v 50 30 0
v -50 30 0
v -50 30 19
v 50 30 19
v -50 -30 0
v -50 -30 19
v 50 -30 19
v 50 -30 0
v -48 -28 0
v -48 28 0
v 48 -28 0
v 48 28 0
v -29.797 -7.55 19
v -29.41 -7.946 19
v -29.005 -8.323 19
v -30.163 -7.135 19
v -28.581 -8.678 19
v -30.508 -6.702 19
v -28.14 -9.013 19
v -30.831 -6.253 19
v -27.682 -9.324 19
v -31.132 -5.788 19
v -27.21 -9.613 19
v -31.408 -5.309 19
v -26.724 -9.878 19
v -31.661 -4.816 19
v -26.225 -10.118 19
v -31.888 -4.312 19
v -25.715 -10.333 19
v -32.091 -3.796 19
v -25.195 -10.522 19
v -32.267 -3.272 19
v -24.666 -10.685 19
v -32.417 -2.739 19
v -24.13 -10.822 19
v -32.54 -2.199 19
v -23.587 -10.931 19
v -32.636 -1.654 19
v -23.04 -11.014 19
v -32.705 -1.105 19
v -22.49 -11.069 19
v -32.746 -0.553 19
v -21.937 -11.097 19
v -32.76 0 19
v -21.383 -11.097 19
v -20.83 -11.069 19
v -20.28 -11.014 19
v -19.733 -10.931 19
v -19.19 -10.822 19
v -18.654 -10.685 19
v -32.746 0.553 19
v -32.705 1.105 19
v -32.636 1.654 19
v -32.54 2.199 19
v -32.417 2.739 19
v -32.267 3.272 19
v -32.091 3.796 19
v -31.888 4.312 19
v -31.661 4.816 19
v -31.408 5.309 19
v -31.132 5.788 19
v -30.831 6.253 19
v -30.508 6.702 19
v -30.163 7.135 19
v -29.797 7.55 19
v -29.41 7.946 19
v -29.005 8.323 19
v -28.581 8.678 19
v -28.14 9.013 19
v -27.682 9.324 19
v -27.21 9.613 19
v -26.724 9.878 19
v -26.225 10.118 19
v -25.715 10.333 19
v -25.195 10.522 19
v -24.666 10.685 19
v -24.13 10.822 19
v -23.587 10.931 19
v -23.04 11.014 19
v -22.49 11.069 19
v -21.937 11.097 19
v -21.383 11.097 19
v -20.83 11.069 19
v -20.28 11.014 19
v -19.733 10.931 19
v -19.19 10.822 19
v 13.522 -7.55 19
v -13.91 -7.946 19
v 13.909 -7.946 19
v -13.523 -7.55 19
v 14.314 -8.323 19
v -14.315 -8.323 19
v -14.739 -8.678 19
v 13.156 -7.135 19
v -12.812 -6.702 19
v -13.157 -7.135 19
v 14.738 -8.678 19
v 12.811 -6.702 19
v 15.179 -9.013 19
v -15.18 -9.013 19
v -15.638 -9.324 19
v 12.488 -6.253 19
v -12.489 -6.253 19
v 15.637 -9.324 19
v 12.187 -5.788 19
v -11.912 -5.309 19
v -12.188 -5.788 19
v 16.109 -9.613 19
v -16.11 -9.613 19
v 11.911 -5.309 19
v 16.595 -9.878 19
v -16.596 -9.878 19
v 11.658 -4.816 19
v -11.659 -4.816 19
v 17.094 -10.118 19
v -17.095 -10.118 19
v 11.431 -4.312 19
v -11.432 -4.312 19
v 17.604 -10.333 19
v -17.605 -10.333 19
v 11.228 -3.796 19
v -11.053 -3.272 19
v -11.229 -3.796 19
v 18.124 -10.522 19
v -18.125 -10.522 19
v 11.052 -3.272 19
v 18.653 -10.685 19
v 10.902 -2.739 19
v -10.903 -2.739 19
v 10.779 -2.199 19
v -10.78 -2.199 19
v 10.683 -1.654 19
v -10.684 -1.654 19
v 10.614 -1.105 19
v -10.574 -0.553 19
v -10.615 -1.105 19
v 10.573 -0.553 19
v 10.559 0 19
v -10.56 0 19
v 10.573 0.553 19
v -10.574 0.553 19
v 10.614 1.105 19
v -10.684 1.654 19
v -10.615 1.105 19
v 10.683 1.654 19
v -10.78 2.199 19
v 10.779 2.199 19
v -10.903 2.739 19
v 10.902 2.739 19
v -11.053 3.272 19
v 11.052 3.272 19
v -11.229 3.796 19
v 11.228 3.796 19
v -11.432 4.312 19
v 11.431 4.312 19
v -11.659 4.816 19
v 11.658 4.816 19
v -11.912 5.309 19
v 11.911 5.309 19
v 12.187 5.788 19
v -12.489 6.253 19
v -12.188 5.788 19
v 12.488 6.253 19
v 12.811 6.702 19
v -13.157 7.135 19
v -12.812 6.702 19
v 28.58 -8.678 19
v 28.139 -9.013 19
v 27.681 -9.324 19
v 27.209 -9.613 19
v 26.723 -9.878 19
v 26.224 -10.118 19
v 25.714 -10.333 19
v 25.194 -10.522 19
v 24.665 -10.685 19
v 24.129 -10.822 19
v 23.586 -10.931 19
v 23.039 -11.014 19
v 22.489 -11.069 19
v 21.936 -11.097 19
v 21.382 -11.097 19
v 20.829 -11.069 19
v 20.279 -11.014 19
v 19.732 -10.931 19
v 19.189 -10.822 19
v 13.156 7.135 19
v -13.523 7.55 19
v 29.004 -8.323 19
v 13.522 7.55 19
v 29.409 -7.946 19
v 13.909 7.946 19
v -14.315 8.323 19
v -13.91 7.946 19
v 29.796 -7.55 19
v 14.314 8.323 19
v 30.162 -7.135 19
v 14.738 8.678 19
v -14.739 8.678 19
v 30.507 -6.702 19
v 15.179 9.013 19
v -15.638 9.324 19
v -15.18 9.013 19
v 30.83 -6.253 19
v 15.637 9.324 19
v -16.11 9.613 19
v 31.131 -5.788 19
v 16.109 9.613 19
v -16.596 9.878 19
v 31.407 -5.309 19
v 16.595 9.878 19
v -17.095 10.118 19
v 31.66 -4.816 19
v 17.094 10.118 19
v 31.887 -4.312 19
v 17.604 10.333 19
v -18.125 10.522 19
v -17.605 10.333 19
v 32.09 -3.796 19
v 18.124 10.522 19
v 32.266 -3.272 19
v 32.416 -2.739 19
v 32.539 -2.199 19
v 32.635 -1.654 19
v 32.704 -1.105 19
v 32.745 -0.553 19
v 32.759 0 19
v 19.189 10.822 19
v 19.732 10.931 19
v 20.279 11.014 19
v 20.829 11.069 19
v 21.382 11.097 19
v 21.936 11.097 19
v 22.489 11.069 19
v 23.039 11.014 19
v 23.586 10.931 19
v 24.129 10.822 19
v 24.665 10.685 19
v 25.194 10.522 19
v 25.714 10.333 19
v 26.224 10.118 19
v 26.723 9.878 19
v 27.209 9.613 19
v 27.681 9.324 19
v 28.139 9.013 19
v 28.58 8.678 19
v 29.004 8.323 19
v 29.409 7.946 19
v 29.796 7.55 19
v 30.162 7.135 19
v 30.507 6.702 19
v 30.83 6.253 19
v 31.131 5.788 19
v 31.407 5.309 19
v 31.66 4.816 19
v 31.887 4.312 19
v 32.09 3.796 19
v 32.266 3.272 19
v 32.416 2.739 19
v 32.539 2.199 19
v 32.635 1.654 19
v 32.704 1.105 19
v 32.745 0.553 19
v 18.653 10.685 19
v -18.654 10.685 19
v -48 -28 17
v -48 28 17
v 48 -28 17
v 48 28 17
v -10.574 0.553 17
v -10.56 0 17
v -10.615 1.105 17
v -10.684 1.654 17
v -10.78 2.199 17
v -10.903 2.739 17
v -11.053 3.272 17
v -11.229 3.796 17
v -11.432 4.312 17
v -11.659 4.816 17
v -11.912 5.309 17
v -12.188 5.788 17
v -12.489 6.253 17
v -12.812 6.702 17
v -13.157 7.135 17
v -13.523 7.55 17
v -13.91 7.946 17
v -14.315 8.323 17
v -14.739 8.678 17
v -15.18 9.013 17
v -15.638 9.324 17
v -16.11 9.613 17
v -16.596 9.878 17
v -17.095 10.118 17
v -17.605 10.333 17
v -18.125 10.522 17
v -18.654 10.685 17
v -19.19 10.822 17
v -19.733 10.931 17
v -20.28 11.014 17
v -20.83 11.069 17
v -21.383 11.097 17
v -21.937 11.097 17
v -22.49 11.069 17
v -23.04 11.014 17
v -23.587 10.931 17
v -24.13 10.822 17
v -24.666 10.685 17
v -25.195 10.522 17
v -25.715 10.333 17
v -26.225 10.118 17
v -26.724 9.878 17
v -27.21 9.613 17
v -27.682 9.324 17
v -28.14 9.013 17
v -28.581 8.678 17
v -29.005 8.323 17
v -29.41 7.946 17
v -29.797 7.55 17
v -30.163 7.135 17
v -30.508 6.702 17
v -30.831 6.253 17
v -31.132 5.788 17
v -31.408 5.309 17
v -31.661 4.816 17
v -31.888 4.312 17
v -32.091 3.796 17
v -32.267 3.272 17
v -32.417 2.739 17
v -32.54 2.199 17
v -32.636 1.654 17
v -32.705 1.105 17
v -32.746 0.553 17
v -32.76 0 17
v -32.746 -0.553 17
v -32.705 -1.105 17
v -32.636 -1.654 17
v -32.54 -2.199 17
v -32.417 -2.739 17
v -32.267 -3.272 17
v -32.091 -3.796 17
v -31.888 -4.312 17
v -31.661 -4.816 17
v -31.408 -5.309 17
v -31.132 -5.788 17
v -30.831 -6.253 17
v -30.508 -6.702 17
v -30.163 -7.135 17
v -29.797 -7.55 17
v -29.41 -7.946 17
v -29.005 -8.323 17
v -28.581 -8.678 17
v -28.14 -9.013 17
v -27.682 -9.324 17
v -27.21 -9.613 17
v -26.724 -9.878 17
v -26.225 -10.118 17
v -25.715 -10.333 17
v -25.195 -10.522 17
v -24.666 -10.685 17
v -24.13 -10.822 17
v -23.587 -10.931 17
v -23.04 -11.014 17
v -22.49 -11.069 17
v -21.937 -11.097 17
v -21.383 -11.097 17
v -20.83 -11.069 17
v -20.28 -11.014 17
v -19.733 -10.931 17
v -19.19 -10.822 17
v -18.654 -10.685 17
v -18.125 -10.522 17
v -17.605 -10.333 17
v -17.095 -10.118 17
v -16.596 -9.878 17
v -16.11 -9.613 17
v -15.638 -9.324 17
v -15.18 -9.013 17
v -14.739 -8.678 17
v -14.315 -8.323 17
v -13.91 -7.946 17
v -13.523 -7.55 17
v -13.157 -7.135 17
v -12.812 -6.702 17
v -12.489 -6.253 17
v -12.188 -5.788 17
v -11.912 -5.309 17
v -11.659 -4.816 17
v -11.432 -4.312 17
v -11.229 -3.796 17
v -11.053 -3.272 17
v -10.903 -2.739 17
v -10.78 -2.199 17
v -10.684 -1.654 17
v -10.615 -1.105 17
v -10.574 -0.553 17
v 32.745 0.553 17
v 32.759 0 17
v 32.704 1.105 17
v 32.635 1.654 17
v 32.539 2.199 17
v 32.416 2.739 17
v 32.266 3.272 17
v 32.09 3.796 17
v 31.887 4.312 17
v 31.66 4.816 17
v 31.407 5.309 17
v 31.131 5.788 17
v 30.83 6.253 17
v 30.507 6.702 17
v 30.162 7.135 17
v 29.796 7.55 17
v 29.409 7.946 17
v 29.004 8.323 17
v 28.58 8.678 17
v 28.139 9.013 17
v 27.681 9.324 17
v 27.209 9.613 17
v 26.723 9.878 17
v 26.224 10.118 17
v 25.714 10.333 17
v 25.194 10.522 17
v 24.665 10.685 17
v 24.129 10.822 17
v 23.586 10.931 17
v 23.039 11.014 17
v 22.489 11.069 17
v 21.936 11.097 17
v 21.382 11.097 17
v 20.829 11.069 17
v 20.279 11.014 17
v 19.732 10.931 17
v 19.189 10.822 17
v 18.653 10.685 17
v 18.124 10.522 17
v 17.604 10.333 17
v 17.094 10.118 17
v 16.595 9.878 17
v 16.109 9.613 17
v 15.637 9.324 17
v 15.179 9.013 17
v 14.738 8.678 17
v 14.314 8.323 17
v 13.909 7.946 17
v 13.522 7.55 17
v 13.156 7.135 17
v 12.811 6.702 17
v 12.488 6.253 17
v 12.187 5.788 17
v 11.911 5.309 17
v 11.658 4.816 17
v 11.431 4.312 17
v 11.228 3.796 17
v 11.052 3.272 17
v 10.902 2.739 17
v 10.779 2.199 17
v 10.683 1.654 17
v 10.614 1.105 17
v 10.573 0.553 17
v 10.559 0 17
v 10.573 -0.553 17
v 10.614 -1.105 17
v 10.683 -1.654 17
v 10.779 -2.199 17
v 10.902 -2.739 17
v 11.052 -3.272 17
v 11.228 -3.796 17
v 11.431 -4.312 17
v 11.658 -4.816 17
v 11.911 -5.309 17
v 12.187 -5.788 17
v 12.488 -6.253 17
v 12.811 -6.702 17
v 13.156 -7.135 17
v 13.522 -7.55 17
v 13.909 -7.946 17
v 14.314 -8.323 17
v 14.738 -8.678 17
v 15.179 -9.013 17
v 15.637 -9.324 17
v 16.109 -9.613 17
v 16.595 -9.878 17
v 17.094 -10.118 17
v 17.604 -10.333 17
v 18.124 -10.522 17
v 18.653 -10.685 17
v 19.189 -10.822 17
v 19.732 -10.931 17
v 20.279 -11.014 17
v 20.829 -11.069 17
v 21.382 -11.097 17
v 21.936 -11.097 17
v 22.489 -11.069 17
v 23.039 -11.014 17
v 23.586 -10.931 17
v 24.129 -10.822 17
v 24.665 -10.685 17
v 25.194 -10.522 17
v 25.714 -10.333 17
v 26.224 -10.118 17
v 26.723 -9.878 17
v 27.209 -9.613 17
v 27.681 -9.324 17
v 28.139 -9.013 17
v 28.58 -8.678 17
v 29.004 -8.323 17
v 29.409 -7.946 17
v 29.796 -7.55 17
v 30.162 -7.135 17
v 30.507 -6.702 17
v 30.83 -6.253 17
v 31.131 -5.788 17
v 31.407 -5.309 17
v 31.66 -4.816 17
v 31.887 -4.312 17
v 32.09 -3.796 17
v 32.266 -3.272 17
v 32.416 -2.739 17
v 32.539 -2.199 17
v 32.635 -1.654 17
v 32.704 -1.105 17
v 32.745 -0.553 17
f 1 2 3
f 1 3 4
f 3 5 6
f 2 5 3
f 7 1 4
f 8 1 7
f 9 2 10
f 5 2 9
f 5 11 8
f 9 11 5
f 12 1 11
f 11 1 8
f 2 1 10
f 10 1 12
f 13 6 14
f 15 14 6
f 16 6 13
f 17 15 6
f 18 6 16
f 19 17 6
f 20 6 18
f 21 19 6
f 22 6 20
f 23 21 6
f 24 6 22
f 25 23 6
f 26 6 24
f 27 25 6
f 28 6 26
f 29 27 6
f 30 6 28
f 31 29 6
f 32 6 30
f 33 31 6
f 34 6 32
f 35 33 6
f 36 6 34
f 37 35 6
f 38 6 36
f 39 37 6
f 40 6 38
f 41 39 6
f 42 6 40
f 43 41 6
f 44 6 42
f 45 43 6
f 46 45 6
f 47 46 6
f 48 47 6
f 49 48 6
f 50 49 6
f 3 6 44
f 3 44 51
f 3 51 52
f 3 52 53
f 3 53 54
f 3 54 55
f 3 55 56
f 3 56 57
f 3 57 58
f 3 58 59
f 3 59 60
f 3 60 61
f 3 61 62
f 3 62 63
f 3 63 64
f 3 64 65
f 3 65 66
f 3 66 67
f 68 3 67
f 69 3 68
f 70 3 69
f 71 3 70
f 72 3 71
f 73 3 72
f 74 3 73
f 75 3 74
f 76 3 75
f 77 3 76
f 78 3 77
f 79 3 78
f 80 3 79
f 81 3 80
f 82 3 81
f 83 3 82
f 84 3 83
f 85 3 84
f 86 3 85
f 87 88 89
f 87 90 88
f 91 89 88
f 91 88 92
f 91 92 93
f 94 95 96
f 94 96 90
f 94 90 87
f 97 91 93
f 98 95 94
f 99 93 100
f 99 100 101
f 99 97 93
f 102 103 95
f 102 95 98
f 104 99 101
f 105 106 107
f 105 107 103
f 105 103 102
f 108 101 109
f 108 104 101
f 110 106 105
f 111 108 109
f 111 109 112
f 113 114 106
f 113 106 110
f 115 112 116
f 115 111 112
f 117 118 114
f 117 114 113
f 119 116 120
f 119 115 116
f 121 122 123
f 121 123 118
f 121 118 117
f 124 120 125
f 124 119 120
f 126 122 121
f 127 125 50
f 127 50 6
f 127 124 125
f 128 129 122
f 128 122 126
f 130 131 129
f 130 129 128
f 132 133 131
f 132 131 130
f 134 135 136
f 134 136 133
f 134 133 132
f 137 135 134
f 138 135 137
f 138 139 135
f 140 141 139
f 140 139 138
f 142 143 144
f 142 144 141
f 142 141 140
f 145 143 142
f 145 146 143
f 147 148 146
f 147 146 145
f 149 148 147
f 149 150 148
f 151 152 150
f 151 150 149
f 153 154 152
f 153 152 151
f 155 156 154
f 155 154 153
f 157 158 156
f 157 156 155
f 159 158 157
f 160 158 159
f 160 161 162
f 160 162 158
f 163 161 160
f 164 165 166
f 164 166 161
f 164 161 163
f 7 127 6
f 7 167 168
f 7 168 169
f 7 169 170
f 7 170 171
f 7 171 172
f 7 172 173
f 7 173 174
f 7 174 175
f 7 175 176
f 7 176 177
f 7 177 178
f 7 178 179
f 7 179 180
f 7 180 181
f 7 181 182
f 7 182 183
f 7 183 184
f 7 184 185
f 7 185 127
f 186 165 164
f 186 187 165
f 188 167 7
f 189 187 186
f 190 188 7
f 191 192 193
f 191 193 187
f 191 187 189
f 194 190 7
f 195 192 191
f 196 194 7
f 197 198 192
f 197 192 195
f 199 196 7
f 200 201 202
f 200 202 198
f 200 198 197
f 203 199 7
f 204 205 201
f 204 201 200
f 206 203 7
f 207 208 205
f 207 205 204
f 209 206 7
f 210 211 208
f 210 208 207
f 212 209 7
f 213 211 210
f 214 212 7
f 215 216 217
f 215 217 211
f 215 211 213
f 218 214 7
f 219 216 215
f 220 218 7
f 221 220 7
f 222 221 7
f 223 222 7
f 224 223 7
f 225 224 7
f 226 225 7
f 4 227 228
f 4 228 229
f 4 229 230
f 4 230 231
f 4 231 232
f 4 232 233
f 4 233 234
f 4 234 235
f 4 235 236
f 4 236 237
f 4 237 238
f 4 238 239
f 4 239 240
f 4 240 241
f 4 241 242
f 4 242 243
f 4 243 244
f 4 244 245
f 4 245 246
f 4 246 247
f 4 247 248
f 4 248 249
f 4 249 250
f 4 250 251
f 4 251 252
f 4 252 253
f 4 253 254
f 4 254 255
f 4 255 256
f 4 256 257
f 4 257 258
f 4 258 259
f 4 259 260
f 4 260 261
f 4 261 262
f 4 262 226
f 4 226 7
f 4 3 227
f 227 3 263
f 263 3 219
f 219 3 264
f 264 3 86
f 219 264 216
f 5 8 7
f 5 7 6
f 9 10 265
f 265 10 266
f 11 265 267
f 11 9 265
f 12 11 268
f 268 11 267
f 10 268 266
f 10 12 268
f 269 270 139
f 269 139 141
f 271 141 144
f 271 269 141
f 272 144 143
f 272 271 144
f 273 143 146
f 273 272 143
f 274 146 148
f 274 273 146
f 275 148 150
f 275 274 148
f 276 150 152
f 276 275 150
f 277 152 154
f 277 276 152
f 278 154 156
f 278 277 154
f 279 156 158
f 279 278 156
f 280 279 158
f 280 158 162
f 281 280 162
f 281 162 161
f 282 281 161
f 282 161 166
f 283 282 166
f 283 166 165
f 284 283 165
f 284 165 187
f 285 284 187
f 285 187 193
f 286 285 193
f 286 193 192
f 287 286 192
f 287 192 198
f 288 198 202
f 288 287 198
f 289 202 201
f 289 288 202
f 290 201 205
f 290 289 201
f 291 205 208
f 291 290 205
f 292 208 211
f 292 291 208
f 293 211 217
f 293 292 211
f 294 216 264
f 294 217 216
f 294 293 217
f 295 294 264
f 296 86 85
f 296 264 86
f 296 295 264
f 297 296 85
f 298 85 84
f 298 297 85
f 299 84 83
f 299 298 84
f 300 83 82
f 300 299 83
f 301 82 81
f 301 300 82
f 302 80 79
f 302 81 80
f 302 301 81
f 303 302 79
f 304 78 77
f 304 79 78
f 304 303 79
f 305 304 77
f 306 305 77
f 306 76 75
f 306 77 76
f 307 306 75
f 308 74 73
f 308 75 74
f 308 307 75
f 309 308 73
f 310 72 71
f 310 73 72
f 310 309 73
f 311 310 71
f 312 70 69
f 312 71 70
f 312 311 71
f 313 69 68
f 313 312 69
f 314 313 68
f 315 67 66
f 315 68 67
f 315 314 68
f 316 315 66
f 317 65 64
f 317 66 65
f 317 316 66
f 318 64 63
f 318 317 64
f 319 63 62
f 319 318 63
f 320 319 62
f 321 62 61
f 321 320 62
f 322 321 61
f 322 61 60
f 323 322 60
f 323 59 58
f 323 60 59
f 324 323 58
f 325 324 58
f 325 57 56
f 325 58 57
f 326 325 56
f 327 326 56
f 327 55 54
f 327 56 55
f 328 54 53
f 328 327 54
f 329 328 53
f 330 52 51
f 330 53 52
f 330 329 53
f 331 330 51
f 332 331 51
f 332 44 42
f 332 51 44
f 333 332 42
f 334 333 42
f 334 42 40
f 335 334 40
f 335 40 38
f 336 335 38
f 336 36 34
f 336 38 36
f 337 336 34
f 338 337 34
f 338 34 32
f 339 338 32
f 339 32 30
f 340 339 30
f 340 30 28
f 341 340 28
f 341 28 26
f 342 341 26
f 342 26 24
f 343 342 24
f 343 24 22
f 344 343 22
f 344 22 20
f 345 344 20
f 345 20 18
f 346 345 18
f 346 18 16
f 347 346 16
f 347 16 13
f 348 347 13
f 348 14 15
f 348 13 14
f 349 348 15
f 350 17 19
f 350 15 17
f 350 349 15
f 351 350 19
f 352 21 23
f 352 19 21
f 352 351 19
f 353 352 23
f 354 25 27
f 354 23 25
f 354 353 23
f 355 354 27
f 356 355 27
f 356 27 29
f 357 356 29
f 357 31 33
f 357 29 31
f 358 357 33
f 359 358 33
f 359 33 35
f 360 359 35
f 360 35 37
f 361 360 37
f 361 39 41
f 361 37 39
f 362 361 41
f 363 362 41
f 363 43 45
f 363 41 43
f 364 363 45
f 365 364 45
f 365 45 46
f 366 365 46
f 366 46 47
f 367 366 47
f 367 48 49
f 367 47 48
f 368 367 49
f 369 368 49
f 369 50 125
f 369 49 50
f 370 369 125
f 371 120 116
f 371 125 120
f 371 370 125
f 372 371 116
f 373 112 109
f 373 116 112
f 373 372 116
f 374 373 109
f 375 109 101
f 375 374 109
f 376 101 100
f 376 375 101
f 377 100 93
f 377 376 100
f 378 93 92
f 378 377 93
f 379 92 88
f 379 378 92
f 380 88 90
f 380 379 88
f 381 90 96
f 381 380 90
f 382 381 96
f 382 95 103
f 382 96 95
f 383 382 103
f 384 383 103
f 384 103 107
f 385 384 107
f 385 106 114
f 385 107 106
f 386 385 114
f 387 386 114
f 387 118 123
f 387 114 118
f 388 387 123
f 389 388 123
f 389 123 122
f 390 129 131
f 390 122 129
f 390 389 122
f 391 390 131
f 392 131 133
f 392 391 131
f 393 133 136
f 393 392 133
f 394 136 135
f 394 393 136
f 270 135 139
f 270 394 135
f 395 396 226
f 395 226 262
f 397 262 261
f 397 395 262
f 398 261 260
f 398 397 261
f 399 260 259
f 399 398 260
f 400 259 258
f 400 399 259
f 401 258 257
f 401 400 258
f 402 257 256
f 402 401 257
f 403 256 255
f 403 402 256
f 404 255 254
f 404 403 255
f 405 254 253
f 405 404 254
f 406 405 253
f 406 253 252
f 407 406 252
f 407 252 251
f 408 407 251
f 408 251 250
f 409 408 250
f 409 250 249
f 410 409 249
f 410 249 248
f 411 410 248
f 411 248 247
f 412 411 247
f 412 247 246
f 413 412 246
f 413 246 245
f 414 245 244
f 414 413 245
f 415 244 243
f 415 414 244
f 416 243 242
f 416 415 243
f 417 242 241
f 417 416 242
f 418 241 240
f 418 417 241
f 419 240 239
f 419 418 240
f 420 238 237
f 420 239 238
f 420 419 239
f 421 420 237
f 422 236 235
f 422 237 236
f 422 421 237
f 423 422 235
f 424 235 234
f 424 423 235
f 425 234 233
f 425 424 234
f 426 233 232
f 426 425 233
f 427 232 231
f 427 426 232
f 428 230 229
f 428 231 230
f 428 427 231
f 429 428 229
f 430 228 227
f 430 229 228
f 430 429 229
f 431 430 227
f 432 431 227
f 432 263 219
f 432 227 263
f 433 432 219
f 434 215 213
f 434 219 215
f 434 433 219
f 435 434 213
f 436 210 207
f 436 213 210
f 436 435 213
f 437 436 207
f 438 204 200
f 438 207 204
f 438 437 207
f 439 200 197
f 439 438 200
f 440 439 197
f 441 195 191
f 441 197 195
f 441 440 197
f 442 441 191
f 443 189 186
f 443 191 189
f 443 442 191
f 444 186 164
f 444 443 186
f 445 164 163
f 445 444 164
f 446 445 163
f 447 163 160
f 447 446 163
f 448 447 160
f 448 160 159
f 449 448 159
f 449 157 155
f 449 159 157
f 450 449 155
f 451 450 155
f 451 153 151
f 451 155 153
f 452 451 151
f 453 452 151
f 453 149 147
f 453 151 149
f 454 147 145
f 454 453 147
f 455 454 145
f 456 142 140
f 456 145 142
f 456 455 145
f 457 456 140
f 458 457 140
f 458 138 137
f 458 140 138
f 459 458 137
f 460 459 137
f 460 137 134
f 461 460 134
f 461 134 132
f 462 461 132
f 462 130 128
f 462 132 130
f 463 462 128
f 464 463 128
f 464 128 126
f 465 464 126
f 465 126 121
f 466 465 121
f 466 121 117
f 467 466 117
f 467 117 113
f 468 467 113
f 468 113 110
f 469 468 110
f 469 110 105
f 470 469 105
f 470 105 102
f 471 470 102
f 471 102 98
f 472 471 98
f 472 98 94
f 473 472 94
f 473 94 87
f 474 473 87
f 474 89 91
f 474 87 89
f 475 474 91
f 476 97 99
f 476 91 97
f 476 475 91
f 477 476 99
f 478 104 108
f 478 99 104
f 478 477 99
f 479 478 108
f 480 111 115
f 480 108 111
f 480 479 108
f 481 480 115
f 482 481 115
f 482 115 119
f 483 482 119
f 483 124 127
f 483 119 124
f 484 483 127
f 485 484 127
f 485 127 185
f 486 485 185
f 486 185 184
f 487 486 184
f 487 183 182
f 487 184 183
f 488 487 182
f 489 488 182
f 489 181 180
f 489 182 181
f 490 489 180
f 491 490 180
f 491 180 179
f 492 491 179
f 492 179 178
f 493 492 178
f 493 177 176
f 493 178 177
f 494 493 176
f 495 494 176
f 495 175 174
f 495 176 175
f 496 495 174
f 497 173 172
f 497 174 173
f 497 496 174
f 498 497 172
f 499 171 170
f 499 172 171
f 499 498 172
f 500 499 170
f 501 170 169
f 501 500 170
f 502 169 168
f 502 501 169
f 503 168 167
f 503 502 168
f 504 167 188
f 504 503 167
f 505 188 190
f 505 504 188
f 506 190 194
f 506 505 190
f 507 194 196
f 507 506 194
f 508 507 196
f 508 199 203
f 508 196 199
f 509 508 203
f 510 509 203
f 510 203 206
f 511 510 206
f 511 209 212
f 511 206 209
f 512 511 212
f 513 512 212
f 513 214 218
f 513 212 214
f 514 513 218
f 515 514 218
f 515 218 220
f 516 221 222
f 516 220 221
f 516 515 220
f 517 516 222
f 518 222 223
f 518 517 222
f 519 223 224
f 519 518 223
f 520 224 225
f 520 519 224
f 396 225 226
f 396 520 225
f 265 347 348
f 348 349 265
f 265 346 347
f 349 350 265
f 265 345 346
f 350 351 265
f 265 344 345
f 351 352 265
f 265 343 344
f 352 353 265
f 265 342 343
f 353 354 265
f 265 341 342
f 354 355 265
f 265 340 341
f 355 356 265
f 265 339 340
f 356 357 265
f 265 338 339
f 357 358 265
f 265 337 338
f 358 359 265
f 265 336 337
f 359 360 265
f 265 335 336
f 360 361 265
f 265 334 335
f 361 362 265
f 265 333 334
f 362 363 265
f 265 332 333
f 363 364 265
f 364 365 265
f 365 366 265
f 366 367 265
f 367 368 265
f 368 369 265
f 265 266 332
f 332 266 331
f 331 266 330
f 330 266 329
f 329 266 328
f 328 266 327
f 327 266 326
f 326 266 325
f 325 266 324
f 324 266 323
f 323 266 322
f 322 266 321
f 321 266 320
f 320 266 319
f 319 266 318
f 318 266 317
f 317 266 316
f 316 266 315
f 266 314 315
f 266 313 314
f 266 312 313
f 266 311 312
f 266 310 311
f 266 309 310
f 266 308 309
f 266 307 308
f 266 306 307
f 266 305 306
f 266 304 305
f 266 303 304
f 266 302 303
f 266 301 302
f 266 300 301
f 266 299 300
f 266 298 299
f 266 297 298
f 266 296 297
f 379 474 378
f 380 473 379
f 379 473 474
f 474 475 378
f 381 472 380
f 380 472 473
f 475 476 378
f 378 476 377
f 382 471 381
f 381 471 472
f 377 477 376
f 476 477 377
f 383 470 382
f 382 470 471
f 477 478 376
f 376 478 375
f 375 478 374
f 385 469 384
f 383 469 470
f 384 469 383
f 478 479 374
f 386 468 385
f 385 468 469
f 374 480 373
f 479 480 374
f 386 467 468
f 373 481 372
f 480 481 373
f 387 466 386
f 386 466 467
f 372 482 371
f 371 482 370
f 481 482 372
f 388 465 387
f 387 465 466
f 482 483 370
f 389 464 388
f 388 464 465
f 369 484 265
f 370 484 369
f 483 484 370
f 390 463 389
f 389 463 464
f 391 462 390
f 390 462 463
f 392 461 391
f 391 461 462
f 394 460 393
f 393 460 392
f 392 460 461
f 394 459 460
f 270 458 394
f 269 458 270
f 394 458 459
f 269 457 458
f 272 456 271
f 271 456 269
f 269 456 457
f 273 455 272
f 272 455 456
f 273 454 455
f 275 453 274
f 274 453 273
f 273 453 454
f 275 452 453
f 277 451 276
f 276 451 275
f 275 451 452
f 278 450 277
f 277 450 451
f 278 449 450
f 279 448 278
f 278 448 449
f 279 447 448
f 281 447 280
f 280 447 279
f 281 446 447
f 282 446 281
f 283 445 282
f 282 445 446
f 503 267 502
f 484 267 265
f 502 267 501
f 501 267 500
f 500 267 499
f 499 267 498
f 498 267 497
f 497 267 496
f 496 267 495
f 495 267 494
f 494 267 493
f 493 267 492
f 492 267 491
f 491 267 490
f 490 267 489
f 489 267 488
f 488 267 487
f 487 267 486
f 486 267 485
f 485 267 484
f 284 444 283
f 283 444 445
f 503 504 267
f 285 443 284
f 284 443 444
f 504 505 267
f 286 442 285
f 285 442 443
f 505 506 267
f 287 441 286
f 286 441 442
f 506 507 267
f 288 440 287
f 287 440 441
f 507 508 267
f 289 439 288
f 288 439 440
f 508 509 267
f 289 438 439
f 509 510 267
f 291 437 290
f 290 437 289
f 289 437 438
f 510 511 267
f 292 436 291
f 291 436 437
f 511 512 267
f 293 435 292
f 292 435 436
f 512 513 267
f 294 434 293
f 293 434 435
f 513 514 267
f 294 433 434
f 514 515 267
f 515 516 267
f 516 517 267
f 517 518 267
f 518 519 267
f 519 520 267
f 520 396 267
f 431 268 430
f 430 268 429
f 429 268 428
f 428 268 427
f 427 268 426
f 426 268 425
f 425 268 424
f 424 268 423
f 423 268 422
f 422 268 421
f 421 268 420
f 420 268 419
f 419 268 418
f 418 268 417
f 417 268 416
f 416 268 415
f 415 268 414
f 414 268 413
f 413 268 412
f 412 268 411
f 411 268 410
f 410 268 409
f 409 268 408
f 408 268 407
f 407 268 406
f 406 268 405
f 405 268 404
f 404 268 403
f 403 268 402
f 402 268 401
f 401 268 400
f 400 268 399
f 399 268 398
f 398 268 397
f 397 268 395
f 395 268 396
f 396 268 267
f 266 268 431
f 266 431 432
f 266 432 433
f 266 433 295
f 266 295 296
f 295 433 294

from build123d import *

# Parameters (mm, degrees)
SKETCH_W        = 100
SKETCH_H        = 60
PAD_DEPTH       = 19
SKETCH001_W     = 96
SKETCH001_H     = 56
POCKET_DEPTH    = 17
SKETCH002_R     = 11.1
POCKET001_DEPTH = 20
SKETCH003_R     = 11.1
POCKET002_DEPTH = 20


with BuildPart() as part:
    # Sketch → Pad (new body)
    with BuildSketch(Plane.XY):
        Rectangle(SKETCH_W, SKETCH_H)
    extrude(amount=PAD_DEPTH)

    # Sketch001 → Pocket (cut)
    with BuildSketch(Plane.XY):
        Rectangle(SKETCH001_W, SKETCH001_H)
    extrude(amount=POCKET_DEPTH, mode=Mode.SUBTRACT)

    # Sketch002 → Pocket001 (cut)
    with BuildSketch(Plane.XY):
        with Locations((-21.66, 0)):
            Circle(SKETCH002_R)
    extrude(amount=POCKET001_DEPTH, mode=Mode.SUBTRACT)

    # Sketch003 → Pocket002 (cut)
    with BuildSketch(Plane.XY):
        with Locations((21.659, 0)):
            Circle(SKETCH003_R)
    extrude(amount=POCKET002_DEPTH, mode=Mode.SUBTRACT)


solid = part.part
